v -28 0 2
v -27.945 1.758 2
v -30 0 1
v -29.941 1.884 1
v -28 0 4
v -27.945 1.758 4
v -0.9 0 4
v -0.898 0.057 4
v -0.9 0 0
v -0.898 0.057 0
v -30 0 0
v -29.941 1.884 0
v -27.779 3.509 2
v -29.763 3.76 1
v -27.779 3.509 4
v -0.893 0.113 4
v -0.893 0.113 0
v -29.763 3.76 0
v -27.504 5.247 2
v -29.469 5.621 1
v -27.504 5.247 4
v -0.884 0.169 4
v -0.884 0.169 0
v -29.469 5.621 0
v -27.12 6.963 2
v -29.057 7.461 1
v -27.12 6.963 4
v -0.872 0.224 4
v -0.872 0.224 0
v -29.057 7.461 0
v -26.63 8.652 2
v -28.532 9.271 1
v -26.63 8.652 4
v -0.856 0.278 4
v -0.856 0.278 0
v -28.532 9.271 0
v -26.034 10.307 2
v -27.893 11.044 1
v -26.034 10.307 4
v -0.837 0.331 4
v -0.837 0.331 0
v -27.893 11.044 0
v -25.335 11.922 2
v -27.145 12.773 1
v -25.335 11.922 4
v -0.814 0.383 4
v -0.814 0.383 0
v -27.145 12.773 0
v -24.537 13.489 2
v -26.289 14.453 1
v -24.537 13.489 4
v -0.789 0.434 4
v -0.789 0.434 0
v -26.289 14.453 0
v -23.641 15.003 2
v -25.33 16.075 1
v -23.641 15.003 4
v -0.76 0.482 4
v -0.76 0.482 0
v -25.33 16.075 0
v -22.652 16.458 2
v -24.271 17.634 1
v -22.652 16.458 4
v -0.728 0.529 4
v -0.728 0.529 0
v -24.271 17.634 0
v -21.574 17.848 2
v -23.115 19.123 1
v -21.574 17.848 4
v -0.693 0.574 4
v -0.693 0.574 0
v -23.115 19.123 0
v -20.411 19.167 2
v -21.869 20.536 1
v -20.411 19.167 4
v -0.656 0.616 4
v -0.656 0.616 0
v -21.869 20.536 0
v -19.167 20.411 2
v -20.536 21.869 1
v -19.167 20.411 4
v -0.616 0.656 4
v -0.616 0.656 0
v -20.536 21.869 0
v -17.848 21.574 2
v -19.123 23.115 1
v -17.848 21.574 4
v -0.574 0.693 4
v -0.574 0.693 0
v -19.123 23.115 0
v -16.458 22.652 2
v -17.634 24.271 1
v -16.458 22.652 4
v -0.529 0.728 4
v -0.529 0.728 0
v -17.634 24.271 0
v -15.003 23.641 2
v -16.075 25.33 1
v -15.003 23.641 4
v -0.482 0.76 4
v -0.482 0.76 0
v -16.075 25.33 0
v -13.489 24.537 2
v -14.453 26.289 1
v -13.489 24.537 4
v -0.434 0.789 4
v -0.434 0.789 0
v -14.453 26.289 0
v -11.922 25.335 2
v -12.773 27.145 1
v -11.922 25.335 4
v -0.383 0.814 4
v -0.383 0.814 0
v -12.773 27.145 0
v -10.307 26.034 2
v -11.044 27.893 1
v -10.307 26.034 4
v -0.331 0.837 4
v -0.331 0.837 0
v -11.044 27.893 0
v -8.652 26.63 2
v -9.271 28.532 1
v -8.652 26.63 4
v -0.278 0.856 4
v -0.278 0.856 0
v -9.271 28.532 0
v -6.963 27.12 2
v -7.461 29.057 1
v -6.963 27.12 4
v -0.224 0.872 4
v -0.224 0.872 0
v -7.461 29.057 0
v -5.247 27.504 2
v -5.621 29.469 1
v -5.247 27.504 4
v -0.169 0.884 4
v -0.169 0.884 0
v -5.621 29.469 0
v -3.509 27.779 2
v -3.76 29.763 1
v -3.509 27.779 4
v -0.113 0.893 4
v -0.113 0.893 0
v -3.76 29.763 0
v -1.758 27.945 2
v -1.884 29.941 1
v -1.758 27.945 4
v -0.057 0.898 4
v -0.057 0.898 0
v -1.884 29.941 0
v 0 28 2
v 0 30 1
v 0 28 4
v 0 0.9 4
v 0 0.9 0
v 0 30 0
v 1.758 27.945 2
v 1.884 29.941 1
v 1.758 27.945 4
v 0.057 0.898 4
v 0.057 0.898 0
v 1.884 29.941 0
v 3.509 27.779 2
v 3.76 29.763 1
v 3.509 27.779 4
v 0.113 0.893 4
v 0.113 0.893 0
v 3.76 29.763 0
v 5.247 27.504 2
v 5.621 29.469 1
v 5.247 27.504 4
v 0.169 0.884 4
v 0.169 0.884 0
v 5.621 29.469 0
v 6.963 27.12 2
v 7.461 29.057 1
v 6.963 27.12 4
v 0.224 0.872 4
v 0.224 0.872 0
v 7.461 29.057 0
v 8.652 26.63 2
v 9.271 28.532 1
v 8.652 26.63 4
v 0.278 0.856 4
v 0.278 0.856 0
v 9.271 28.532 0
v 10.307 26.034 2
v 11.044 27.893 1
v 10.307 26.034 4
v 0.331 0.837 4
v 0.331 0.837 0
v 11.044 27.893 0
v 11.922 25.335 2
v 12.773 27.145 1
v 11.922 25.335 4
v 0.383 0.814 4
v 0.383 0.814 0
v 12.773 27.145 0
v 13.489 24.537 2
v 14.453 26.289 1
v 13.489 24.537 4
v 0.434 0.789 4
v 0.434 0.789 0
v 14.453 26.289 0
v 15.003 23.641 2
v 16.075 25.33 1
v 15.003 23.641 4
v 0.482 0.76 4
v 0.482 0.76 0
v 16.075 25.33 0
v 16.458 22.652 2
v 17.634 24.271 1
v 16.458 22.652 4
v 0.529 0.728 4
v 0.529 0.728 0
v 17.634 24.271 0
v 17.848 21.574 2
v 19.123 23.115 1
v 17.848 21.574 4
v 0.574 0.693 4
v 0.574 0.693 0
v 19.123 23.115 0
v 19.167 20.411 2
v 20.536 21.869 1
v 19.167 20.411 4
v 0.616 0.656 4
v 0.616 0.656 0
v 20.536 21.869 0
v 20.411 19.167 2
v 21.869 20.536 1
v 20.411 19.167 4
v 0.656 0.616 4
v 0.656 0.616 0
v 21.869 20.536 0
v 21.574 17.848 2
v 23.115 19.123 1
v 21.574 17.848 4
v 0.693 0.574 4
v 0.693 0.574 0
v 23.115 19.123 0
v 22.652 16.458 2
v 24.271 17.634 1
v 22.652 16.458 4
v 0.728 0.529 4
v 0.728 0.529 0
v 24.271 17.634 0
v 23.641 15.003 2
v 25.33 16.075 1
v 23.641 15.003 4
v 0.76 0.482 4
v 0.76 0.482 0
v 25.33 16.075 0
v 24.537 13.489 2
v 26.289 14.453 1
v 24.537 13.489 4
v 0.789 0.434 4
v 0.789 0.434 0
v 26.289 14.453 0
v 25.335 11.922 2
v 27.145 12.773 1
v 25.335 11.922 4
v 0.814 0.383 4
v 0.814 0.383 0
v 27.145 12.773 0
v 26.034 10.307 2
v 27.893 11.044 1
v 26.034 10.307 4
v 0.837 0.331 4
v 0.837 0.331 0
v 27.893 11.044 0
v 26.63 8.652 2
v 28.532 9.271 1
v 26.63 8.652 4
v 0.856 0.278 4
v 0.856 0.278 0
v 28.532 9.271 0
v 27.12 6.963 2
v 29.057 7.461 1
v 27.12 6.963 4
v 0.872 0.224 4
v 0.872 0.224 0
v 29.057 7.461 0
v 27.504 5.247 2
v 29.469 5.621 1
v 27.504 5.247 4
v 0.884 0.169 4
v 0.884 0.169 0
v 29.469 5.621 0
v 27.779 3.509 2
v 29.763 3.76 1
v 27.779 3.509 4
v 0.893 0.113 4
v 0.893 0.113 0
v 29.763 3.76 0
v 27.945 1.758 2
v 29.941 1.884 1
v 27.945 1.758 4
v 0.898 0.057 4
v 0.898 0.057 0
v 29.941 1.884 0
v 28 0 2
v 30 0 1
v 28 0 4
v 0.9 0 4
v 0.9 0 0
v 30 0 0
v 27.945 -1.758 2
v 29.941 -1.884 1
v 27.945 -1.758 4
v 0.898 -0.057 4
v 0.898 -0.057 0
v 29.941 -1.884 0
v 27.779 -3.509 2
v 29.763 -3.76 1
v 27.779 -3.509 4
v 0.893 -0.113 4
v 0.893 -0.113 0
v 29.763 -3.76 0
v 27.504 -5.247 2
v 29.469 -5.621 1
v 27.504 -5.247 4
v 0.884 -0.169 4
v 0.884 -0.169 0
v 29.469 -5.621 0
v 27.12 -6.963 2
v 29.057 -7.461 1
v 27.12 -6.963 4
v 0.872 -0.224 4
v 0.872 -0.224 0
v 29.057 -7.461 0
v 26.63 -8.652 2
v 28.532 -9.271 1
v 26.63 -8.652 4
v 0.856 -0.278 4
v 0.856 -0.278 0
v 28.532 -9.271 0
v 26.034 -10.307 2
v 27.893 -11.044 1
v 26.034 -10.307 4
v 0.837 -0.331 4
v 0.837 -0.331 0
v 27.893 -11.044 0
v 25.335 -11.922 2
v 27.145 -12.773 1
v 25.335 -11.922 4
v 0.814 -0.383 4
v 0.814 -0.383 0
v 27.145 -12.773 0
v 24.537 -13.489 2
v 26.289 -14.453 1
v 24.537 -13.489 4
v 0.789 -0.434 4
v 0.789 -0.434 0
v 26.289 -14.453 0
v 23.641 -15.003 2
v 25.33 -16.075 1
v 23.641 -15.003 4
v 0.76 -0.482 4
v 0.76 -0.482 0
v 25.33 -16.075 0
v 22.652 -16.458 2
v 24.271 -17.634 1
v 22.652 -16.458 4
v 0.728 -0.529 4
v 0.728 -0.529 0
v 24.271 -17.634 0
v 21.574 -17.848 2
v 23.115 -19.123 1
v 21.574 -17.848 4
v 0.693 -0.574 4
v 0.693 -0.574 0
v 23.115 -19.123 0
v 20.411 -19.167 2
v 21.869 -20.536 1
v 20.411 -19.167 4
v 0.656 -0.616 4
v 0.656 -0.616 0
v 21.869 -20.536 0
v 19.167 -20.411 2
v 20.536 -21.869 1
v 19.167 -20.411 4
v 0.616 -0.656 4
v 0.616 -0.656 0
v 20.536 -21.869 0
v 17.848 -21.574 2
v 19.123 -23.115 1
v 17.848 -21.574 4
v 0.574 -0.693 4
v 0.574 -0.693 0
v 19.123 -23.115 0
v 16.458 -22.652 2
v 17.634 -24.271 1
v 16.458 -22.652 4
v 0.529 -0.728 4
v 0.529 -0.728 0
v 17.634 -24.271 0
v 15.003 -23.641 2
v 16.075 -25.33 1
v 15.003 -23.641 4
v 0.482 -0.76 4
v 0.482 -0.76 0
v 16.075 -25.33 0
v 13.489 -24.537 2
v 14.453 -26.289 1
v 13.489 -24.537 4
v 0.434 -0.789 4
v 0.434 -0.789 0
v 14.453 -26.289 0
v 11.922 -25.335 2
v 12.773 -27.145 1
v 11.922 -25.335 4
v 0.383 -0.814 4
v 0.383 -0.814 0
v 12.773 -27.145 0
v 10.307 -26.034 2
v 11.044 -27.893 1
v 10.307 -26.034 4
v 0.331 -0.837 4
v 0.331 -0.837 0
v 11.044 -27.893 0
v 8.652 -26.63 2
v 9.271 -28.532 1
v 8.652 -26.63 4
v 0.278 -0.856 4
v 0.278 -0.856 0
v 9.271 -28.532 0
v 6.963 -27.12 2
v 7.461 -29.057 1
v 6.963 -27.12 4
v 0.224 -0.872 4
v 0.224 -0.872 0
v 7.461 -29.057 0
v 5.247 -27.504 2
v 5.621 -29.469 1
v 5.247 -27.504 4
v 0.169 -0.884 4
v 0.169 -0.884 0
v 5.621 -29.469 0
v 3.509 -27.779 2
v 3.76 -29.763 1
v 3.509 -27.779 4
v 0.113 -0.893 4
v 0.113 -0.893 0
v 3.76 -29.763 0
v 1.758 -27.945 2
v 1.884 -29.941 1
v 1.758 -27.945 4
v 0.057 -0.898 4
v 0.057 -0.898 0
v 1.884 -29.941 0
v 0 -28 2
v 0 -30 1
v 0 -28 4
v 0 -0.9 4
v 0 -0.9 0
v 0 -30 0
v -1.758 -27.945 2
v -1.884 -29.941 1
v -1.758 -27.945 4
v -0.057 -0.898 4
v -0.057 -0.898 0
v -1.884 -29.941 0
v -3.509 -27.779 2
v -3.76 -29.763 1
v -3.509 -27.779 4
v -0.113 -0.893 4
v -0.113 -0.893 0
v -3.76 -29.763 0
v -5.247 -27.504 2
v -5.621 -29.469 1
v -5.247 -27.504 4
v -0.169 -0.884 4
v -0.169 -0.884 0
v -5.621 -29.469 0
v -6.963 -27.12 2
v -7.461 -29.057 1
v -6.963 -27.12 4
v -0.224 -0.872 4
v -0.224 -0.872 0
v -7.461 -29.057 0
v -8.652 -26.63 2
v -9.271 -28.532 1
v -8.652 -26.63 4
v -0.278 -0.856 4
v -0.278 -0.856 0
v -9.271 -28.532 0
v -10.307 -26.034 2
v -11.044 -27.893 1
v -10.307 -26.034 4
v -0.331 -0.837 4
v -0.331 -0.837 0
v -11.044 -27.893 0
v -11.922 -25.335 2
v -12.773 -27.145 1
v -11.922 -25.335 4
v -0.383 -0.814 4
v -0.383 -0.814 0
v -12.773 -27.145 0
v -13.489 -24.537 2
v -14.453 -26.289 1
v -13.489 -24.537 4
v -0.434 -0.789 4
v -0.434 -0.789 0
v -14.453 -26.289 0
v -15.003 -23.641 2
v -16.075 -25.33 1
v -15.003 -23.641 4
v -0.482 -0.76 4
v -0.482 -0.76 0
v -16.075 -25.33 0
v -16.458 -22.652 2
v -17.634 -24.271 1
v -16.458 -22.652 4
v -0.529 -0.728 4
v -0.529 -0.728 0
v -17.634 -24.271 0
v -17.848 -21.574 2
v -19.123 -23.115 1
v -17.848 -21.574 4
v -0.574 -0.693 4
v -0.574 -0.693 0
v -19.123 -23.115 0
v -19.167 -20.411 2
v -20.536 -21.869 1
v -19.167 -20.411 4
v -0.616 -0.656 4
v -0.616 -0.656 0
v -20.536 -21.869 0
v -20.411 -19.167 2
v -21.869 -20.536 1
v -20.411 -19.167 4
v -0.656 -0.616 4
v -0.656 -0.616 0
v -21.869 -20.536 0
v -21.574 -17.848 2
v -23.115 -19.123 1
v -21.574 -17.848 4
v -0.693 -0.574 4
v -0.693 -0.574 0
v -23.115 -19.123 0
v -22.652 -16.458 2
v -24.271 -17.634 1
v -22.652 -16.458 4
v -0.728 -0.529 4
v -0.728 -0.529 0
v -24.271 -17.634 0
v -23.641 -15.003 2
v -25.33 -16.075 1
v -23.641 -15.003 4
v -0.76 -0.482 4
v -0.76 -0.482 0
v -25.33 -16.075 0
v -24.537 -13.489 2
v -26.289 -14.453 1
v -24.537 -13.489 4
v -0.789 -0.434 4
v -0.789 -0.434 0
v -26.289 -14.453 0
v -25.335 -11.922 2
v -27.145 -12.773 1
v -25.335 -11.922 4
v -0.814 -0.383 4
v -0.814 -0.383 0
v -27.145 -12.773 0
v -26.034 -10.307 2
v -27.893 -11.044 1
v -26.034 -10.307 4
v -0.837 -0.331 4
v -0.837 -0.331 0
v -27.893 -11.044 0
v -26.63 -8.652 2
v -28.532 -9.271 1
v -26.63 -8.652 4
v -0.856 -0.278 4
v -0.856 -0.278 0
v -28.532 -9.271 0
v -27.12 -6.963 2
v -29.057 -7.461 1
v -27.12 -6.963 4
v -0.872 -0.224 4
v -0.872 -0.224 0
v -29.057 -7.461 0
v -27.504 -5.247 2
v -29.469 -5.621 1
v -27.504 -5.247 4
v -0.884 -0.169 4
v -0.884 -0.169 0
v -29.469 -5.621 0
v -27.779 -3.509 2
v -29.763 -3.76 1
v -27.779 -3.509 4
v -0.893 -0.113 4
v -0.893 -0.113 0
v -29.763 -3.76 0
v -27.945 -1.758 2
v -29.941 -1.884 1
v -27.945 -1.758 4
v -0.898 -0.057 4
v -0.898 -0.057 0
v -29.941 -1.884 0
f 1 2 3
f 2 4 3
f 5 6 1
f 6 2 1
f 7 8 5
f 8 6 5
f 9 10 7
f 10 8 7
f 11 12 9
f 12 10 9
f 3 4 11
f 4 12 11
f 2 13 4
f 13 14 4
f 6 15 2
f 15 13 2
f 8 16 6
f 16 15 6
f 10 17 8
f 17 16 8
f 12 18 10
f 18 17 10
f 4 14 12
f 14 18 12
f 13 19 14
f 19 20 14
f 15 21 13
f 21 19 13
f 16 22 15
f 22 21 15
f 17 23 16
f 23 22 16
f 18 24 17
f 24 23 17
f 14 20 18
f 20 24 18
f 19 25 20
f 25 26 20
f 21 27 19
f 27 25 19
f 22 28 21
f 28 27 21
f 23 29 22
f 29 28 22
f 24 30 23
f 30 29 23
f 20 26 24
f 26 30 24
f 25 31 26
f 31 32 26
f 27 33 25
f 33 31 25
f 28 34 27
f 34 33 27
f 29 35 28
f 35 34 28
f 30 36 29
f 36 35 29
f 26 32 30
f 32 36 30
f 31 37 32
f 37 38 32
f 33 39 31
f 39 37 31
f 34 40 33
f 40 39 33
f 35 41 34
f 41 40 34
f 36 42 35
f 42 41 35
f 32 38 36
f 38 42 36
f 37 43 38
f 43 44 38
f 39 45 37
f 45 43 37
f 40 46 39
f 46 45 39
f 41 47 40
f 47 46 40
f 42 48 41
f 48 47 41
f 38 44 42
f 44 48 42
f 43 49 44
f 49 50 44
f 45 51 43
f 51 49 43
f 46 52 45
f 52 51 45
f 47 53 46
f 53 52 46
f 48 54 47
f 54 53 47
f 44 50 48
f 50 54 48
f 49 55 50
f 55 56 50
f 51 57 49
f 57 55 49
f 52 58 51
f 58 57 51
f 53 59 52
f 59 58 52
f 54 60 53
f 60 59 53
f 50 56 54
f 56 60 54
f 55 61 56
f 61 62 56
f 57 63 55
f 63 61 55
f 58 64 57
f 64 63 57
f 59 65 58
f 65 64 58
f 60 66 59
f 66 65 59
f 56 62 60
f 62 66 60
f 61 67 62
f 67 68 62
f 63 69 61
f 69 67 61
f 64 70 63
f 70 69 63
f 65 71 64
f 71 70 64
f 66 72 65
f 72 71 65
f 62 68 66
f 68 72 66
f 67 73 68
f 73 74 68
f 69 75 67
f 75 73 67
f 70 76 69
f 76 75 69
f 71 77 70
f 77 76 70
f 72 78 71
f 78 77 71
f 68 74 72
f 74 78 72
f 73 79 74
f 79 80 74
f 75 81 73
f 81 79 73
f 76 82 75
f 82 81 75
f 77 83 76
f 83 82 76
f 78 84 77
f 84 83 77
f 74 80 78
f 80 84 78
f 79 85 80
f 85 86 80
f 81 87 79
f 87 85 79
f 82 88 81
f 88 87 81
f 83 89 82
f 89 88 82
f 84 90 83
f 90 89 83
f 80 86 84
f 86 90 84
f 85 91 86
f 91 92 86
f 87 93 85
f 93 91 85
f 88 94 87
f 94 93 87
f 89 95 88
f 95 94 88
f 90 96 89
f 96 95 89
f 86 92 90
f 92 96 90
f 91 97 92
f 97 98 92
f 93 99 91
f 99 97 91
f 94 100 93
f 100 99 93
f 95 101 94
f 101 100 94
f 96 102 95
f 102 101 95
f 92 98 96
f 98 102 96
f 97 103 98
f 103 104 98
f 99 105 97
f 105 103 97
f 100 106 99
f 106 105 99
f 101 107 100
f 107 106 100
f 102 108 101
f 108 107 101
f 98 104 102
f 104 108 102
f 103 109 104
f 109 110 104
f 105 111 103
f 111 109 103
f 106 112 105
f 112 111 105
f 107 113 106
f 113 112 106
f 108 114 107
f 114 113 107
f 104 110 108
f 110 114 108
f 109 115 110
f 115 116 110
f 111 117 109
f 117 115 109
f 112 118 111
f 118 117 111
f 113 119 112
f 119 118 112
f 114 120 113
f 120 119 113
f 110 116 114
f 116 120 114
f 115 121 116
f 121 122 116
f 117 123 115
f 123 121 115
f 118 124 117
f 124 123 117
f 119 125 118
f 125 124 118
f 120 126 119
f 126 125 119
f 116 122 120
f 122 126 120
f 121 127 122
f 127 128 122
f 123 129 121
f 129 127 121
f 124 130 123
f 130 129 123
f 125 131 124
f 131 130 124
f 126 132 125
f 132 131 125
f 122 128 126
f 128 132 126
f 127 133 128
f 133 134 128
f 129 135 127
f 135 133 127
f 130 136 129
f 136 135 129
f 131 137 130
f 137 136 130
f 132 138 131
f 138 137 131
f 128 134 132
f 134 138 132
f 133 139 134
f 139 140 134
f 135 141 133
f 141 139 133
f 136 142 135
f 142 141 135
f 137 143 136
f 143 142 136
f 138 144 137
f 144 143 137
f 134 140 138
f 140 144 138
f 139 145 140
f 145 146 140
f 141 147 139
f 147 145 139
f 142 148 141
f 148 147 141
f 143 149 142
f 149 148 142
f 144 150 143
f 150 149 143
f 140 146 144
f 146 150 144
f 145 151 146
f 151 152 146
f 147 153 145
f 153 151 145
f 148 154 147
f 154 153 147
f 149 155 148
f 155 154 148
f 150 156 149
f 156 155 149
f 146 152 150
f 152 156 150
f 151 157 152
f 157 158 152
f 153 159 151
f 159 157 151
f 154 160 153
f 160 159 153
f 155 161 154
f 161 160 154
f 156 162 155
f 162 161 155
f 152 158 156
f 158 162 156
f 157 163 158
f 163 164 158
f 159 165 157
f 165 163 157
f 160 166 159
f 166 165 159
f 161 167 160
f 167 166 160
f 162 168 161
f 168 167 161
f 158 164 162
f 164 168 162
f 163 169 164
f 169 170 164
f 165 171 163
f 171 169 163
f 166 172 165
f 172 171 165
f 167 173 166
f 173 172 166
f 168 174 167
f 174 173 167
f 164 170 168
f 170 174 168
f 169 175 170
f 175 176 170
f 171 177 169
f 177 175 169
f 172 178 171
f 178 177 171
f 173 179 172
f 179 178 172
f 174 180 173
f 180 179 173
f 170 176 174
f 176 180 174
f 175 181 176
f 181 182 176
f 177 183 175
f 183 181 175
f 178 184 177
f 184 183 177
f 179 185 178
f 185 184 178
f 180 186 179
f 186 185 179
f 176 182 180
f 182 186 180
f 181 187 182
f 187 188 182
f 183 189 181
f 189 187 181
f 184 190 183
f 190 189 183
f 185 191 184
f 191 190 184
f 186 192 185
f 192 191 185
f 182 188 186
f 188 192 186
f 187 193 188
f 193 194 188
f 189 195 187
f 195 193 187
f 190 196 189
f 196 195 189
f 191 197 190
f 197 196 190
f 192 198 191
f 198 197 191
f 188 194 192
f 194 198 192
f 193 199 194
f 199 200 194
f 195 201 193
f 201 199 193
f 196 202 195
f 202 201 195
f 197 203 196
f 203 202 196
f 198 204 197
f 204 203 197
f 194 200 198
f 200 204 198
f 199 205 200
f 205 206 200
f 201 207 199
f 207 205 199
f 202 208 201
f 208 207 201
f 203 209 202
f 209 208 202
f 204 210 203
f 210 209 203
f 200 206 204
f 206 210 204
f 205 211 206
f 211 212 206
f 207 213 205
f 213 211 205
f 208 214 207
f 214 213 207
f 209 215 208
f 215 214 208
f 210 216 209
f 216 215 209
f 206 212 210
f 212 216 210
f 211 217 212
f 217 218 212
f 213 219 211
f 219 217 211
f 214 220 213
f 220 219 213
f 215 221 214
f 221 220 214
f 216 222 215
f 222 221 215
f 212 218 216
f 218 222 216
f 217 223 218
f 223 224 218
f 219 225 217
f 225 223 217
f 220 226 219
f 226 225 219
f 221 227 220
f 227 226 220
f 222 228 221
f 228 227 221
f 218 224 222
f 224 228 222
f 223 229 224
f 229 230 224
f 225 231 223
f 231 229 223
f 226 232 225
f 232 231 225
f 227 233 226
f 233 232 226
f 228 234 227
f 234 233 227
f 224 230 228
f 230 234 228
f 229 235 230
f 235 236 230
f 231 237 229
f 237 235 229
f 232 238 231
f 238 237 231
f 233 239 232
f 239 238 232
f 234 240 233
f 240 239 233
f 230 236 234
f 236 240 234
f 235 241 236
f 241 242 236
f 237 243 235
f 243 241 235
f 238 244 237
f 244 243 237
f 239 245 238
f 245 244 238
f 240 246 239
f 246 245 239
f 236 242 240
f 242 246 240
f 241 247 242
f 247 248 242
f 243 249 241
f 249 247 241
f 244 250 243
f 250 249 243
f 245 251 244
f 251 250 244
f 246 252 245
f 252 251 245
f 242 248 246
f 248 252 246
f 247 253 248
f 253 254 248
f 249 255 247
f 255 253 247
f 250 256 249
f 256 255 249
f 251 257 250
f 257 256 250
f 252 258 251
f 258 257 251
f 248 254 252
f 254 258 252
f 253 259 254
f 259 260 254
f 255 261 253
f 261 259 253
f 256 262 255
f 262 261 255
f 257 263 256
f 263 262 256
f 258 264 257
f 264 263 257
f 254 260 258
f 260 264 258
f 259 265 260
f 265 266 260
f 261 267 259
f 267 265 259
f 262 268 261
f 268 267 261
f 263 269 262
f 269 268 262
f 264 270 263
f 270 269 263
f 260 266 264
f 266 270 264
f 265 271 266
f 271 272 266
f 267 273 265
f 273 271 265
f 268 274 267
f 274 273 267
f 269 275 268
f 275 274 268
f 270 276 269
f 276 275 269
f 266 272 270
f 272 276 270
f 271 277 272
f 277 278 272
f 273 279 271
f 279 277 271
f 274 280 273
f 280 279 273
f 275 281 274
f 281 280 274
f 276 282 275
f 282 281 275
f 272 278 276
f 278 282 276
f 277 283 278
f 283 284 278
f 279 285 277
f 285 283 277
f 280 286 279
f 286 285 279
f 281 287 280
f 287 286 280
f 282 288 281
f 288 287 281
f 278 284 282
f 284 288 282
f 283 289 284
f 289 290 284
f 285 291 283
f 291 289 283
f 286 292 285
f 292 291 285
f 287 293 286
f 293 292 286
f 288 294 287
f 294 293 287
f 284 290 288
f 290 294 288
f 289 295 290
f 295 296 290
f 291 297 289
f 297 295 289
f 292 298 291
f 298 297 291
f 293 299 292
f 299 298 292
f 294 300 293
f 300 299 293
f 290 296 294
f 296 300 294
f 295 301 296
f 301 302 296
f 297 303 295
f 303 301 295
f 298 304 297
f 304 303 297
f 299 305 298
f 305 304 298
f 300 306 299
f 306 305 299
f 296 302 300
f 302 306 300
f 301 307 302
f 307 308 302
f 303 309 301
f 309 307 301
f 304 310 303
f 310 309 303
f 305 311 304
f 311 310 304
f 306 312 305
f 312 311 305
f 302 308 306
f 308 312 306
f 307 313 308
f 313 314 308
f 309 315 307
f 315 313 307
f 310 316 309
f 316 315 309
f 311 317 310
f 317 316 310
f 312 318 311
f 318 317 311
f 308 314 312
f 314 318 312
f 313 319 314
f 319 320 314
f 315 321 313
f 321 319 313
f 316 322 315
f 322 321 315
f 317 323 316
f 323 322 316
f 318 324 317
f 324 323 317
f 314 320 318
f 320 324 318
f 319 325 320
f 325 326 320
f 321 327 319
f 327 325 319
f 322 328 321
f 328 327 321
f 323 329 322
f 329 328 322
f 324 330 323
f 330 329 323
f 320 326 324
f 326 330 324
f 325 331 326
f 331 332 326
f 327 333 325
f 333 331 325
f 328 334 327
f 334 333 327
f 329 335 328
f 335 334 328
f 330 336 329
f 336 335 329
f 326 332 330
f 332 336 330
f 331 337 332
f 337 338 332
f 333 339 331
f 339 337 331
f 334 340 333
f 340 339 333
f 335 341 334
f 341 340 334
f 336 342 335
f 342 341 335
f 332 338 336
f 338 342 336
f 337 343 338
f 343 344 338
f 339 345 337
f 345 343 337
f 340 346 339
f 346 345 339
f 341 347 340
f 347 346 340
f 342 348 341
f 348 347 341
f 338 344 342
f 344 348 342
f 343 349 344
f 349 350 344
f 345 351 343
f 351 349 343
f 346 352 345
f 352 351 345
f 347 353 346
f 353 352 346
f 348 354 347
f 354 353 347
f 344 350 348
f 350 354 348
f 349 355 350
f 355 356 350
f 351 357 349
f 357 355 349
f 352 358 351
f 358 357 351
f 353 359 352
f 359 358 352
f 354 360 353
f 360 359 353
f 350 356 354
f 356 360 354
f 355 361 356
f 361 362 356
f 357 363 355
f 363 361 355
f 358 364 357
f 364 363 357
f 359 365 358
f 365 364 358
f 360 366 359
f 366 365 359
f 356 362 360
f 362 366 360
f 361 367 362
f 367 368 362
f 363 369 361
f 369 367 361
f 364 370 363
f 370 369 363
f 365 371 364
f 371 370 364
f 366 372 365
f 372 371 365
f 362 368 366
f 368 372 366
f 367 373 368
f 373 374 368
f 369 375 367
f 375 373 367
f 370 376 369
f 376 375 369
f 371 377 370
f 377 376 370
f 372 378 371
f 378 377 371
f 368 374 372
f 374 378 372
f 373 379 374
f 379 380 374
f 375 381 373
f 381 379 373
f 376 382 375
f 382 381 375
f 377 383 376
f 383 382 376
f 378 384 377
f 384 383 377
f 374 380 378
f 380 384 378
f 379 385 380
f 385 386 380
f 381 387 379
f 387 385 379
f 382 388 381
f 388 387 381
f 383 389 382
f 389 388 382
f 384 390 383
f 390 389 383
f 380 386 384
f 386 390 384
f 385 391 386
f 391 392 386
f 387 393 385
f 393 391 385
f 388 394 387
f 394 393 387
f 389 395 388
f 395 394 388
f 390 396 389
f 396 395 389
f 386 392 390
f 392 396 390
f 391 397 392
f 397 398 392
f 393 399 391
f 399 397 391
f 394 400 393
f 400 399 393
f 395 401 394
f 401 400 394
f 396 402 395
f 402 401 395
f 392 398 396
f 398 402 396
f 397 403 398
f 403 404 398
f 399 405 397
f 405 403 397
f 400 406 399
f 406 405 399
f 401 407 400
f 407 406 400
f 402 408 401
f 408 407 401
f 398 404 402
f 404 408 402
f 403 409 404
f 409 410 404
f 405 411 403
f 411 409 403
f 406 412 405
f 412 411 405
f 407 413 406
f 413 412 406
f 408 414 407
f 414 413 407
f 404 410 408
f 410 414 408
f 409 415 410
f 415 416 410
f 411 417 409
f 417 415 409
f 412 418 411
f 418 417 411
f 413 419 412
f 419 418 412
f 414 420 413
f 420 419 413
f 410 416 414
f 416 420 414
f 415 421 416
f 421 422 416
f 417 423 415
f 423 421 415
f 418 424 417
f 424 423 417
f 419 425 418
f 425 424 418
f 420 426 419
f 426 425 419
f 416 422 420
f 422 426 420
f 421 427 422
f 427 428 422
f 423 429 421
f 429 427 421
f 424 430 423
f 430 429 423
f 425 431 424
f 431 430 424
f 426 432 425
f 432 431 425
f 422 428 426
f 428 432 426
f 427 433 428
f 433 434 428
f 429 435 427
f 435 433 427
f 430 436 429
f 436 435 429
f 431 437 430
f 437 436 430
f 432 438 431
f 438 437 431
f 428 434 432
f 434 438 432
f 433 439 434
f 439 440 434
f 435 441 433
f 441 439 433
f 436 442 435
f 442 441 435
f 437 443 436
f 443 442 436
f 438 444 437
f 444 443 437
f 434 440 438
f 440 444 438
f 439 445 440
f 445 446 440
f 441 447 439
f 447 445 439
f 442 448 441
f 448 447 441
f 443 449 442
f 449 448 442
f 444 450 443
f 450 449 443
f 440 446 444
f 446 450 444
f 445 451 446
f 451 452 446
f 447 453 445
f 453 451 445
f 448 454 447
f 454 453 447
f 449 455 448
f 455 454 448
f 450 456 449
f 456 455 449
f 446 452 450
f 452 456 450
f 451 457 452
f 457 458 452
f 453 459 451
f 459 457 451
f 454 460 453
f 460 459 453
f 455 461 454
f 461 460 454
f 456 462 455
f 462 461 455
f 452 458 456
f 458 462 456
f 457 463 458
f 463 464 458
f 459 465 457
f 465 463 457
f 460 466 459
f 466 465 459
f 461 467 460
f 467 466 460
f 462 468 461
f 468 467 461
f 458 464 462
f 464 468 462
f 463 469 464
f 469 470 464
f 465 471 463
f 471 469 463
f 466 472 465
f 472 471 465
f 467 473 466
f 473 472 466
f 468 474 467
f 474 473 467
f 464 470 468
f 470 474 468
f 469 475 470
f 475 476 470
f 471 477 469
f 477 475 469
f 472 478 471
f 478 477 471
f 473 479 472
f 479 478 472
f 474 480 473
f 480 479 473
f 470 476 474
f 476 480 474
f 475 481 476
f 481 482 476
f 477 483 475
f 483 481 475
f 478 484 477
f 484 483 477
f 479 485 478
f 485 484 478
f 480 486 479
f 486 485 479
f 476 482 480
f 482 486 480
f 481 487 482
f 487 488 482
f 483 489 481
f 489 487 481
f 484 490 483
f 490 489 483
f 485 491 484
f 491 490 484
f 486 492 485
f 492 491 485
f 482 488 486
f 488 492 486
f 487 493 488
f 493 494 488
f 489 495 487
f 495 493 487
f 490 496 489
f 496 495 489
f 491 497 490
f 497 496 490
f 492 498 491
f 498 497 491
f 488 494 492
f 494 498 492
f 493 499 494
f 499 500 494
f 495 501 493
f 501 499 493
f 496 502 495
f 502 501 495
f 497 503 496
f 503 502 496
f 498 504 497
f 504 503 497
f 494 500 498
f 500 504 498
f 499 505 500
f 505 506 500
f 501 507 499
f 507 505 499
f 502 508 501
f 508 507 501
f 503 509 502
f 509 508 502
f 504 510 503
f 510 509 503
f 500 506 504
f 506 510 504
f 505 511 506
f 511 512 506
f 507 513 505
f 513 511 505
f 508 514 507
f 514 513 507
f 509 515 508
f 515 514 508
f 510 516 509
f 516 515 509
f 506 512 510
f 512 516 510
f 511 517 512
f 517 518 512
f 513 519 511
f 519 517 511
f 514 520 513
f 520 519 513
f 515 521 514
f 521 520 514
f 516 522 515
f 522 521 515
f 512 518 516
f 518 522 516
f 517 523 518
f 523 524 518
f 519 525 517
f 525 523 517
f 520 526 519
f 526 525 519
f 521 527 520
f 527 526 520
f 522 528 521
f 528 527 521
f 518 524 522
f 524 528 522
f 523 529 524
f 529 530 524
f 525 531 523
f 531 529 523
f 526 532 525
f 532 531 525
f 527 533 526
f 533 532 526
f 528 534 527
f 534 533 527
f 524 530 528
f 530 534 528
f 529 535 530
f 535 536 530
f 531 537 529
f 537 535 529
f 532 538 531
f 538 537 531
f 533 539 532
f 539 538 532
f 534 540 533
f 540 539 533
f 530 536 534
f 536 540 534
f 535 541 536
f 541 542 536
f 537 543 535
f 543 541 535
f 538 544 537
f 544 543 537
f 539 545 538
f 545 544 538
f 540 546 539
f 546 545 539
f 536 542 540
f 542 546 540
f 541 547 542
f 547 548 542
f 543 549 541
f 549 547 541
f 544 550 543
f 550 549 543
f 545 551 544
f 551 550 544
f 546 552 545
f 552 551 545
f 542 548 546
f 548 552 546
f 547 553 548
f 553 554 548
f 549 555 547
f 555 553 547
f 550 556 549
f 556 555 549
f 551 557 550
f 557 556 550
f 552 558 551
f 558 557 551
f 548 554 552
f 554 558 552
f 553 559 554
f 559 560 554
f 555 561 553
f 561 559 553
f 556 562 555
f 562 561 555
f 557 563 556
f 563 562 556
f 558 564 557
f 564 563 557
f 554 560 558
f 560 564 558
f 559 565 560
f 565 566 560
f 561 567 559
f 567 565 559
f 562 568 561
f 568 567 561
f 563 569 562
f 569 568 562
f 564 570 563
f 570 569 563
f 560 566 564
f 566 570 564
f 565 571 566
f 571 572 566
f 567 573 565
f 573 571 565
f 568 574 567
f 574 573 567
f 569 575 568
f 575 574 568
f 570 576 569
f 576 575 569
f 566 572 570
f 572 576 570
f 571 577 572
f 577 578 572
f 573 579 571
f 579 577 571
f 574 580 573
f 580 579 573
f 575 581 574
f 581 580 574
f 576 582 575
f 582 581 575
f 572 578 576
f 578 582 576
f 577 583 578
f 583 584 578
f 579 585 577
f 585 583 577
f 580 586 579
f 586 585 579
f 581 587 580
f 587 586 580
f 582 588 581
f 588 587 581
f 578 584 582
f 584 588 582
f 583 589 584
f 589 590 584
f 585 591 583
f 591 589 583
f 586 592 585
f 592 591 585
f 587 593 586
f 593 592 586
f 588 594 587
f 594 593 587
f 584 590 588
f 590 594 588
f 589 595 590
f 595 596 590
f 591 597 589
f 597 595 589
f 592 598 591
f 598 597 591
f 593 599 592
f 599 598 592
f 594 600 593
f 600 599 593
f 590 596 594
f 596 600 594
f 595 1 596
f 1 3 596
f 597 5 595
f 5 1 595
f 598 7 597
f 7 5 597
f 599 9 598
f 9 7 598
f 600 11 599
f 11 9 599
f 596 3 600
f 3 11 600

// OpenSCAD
$fn = 100;

wheel_d = 60;
thickness = 6;
notch_depth = 2;
notch_width = 2;
wall = 1;
hole_d = 1.8;

rotate_extrude(angle = 360) {
    polygon(points=[
        [hole_d / 2, 0],
        [wheel_d / 2, 0],
        [wheel_d / 2, wall],
        [wheel_d / 2 - notch_depth, wall * 2],
        [wheel_d / 2 - notch_depth, wall * 2 + notch_width],
        [hole_d / 2, wall * 2 + notch_width]
    ]);
}
